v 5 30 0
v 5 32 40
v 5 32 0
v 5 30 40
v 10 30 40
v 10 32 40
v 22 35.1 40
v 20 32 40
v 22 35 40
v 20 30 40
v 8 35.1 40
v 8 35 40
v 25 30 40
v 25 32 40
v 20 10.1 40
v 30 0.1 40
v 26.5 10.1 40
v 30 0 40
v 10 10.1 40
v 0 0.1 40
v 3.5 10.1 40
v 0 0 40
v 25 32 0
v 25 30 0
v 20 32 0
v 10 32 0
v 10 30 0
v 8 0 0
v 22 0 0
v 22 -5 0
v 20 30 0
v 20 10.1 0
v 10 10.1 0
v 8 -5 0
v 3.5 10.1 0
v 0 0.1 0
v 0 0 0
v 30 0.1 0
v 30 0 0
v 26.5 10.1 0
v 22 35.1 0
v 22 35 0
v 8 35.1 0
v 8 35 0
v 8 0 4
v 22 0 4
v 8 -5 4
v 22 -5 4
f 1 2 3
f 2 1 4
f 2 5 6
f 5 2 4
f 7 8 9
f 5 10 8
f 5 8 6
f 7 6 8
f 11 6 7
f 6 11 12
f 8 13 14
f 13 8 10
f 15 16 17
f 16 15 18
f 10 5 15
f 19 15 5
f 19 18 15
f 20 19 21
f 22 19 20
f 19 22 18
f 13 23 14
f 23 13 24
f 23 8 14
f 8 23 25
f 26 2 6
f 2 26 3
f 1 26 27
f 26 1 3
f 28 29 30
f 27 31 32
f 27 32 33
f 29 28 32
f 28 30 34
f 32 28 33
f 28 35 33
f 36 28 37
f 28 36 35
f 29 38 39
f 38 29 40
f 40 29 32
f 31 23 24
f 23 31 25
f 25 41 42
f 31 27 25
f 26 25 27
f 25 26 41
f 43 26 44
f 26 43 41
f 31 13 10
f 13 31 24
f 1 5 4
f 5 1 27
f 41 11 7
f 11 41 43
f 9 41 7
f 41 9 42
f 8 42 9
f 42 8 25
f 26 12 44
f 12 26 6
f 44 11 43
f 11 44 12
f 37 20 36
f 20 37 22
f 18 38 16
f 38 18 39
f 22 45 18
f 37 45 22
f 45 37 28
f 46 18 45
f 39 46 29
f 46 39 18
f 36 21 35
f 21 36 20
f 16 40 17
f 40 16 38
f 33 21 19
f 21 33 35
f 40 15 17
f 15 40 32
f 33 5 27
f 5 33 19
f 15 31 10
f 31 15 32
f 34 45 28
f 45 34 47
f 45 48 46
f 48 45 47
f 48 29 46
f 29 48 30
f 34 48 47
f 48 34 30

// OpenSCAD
hull(){
    cube([30, 0.1, 40]);
    translate([(30-23)/2, 10, 0]) cube([23, 0.1, 40]);
}
translate([30/2-10/2, 0, 0]) cube([10, 30, 40]);

translate([0, 30, 0]){
    translate([30/2-20/2, 0, 0]) cube([20, 2, 40]);
    translate([30/2-5, 2, 0]) hull(){
        cube([10, 0.1, 40]);
        translate([-2, 3, 0]) cube([14,0.1, 40]);
    }
}


translate([30/2-7, -5, 0]) cube([14, 5, 4]);
